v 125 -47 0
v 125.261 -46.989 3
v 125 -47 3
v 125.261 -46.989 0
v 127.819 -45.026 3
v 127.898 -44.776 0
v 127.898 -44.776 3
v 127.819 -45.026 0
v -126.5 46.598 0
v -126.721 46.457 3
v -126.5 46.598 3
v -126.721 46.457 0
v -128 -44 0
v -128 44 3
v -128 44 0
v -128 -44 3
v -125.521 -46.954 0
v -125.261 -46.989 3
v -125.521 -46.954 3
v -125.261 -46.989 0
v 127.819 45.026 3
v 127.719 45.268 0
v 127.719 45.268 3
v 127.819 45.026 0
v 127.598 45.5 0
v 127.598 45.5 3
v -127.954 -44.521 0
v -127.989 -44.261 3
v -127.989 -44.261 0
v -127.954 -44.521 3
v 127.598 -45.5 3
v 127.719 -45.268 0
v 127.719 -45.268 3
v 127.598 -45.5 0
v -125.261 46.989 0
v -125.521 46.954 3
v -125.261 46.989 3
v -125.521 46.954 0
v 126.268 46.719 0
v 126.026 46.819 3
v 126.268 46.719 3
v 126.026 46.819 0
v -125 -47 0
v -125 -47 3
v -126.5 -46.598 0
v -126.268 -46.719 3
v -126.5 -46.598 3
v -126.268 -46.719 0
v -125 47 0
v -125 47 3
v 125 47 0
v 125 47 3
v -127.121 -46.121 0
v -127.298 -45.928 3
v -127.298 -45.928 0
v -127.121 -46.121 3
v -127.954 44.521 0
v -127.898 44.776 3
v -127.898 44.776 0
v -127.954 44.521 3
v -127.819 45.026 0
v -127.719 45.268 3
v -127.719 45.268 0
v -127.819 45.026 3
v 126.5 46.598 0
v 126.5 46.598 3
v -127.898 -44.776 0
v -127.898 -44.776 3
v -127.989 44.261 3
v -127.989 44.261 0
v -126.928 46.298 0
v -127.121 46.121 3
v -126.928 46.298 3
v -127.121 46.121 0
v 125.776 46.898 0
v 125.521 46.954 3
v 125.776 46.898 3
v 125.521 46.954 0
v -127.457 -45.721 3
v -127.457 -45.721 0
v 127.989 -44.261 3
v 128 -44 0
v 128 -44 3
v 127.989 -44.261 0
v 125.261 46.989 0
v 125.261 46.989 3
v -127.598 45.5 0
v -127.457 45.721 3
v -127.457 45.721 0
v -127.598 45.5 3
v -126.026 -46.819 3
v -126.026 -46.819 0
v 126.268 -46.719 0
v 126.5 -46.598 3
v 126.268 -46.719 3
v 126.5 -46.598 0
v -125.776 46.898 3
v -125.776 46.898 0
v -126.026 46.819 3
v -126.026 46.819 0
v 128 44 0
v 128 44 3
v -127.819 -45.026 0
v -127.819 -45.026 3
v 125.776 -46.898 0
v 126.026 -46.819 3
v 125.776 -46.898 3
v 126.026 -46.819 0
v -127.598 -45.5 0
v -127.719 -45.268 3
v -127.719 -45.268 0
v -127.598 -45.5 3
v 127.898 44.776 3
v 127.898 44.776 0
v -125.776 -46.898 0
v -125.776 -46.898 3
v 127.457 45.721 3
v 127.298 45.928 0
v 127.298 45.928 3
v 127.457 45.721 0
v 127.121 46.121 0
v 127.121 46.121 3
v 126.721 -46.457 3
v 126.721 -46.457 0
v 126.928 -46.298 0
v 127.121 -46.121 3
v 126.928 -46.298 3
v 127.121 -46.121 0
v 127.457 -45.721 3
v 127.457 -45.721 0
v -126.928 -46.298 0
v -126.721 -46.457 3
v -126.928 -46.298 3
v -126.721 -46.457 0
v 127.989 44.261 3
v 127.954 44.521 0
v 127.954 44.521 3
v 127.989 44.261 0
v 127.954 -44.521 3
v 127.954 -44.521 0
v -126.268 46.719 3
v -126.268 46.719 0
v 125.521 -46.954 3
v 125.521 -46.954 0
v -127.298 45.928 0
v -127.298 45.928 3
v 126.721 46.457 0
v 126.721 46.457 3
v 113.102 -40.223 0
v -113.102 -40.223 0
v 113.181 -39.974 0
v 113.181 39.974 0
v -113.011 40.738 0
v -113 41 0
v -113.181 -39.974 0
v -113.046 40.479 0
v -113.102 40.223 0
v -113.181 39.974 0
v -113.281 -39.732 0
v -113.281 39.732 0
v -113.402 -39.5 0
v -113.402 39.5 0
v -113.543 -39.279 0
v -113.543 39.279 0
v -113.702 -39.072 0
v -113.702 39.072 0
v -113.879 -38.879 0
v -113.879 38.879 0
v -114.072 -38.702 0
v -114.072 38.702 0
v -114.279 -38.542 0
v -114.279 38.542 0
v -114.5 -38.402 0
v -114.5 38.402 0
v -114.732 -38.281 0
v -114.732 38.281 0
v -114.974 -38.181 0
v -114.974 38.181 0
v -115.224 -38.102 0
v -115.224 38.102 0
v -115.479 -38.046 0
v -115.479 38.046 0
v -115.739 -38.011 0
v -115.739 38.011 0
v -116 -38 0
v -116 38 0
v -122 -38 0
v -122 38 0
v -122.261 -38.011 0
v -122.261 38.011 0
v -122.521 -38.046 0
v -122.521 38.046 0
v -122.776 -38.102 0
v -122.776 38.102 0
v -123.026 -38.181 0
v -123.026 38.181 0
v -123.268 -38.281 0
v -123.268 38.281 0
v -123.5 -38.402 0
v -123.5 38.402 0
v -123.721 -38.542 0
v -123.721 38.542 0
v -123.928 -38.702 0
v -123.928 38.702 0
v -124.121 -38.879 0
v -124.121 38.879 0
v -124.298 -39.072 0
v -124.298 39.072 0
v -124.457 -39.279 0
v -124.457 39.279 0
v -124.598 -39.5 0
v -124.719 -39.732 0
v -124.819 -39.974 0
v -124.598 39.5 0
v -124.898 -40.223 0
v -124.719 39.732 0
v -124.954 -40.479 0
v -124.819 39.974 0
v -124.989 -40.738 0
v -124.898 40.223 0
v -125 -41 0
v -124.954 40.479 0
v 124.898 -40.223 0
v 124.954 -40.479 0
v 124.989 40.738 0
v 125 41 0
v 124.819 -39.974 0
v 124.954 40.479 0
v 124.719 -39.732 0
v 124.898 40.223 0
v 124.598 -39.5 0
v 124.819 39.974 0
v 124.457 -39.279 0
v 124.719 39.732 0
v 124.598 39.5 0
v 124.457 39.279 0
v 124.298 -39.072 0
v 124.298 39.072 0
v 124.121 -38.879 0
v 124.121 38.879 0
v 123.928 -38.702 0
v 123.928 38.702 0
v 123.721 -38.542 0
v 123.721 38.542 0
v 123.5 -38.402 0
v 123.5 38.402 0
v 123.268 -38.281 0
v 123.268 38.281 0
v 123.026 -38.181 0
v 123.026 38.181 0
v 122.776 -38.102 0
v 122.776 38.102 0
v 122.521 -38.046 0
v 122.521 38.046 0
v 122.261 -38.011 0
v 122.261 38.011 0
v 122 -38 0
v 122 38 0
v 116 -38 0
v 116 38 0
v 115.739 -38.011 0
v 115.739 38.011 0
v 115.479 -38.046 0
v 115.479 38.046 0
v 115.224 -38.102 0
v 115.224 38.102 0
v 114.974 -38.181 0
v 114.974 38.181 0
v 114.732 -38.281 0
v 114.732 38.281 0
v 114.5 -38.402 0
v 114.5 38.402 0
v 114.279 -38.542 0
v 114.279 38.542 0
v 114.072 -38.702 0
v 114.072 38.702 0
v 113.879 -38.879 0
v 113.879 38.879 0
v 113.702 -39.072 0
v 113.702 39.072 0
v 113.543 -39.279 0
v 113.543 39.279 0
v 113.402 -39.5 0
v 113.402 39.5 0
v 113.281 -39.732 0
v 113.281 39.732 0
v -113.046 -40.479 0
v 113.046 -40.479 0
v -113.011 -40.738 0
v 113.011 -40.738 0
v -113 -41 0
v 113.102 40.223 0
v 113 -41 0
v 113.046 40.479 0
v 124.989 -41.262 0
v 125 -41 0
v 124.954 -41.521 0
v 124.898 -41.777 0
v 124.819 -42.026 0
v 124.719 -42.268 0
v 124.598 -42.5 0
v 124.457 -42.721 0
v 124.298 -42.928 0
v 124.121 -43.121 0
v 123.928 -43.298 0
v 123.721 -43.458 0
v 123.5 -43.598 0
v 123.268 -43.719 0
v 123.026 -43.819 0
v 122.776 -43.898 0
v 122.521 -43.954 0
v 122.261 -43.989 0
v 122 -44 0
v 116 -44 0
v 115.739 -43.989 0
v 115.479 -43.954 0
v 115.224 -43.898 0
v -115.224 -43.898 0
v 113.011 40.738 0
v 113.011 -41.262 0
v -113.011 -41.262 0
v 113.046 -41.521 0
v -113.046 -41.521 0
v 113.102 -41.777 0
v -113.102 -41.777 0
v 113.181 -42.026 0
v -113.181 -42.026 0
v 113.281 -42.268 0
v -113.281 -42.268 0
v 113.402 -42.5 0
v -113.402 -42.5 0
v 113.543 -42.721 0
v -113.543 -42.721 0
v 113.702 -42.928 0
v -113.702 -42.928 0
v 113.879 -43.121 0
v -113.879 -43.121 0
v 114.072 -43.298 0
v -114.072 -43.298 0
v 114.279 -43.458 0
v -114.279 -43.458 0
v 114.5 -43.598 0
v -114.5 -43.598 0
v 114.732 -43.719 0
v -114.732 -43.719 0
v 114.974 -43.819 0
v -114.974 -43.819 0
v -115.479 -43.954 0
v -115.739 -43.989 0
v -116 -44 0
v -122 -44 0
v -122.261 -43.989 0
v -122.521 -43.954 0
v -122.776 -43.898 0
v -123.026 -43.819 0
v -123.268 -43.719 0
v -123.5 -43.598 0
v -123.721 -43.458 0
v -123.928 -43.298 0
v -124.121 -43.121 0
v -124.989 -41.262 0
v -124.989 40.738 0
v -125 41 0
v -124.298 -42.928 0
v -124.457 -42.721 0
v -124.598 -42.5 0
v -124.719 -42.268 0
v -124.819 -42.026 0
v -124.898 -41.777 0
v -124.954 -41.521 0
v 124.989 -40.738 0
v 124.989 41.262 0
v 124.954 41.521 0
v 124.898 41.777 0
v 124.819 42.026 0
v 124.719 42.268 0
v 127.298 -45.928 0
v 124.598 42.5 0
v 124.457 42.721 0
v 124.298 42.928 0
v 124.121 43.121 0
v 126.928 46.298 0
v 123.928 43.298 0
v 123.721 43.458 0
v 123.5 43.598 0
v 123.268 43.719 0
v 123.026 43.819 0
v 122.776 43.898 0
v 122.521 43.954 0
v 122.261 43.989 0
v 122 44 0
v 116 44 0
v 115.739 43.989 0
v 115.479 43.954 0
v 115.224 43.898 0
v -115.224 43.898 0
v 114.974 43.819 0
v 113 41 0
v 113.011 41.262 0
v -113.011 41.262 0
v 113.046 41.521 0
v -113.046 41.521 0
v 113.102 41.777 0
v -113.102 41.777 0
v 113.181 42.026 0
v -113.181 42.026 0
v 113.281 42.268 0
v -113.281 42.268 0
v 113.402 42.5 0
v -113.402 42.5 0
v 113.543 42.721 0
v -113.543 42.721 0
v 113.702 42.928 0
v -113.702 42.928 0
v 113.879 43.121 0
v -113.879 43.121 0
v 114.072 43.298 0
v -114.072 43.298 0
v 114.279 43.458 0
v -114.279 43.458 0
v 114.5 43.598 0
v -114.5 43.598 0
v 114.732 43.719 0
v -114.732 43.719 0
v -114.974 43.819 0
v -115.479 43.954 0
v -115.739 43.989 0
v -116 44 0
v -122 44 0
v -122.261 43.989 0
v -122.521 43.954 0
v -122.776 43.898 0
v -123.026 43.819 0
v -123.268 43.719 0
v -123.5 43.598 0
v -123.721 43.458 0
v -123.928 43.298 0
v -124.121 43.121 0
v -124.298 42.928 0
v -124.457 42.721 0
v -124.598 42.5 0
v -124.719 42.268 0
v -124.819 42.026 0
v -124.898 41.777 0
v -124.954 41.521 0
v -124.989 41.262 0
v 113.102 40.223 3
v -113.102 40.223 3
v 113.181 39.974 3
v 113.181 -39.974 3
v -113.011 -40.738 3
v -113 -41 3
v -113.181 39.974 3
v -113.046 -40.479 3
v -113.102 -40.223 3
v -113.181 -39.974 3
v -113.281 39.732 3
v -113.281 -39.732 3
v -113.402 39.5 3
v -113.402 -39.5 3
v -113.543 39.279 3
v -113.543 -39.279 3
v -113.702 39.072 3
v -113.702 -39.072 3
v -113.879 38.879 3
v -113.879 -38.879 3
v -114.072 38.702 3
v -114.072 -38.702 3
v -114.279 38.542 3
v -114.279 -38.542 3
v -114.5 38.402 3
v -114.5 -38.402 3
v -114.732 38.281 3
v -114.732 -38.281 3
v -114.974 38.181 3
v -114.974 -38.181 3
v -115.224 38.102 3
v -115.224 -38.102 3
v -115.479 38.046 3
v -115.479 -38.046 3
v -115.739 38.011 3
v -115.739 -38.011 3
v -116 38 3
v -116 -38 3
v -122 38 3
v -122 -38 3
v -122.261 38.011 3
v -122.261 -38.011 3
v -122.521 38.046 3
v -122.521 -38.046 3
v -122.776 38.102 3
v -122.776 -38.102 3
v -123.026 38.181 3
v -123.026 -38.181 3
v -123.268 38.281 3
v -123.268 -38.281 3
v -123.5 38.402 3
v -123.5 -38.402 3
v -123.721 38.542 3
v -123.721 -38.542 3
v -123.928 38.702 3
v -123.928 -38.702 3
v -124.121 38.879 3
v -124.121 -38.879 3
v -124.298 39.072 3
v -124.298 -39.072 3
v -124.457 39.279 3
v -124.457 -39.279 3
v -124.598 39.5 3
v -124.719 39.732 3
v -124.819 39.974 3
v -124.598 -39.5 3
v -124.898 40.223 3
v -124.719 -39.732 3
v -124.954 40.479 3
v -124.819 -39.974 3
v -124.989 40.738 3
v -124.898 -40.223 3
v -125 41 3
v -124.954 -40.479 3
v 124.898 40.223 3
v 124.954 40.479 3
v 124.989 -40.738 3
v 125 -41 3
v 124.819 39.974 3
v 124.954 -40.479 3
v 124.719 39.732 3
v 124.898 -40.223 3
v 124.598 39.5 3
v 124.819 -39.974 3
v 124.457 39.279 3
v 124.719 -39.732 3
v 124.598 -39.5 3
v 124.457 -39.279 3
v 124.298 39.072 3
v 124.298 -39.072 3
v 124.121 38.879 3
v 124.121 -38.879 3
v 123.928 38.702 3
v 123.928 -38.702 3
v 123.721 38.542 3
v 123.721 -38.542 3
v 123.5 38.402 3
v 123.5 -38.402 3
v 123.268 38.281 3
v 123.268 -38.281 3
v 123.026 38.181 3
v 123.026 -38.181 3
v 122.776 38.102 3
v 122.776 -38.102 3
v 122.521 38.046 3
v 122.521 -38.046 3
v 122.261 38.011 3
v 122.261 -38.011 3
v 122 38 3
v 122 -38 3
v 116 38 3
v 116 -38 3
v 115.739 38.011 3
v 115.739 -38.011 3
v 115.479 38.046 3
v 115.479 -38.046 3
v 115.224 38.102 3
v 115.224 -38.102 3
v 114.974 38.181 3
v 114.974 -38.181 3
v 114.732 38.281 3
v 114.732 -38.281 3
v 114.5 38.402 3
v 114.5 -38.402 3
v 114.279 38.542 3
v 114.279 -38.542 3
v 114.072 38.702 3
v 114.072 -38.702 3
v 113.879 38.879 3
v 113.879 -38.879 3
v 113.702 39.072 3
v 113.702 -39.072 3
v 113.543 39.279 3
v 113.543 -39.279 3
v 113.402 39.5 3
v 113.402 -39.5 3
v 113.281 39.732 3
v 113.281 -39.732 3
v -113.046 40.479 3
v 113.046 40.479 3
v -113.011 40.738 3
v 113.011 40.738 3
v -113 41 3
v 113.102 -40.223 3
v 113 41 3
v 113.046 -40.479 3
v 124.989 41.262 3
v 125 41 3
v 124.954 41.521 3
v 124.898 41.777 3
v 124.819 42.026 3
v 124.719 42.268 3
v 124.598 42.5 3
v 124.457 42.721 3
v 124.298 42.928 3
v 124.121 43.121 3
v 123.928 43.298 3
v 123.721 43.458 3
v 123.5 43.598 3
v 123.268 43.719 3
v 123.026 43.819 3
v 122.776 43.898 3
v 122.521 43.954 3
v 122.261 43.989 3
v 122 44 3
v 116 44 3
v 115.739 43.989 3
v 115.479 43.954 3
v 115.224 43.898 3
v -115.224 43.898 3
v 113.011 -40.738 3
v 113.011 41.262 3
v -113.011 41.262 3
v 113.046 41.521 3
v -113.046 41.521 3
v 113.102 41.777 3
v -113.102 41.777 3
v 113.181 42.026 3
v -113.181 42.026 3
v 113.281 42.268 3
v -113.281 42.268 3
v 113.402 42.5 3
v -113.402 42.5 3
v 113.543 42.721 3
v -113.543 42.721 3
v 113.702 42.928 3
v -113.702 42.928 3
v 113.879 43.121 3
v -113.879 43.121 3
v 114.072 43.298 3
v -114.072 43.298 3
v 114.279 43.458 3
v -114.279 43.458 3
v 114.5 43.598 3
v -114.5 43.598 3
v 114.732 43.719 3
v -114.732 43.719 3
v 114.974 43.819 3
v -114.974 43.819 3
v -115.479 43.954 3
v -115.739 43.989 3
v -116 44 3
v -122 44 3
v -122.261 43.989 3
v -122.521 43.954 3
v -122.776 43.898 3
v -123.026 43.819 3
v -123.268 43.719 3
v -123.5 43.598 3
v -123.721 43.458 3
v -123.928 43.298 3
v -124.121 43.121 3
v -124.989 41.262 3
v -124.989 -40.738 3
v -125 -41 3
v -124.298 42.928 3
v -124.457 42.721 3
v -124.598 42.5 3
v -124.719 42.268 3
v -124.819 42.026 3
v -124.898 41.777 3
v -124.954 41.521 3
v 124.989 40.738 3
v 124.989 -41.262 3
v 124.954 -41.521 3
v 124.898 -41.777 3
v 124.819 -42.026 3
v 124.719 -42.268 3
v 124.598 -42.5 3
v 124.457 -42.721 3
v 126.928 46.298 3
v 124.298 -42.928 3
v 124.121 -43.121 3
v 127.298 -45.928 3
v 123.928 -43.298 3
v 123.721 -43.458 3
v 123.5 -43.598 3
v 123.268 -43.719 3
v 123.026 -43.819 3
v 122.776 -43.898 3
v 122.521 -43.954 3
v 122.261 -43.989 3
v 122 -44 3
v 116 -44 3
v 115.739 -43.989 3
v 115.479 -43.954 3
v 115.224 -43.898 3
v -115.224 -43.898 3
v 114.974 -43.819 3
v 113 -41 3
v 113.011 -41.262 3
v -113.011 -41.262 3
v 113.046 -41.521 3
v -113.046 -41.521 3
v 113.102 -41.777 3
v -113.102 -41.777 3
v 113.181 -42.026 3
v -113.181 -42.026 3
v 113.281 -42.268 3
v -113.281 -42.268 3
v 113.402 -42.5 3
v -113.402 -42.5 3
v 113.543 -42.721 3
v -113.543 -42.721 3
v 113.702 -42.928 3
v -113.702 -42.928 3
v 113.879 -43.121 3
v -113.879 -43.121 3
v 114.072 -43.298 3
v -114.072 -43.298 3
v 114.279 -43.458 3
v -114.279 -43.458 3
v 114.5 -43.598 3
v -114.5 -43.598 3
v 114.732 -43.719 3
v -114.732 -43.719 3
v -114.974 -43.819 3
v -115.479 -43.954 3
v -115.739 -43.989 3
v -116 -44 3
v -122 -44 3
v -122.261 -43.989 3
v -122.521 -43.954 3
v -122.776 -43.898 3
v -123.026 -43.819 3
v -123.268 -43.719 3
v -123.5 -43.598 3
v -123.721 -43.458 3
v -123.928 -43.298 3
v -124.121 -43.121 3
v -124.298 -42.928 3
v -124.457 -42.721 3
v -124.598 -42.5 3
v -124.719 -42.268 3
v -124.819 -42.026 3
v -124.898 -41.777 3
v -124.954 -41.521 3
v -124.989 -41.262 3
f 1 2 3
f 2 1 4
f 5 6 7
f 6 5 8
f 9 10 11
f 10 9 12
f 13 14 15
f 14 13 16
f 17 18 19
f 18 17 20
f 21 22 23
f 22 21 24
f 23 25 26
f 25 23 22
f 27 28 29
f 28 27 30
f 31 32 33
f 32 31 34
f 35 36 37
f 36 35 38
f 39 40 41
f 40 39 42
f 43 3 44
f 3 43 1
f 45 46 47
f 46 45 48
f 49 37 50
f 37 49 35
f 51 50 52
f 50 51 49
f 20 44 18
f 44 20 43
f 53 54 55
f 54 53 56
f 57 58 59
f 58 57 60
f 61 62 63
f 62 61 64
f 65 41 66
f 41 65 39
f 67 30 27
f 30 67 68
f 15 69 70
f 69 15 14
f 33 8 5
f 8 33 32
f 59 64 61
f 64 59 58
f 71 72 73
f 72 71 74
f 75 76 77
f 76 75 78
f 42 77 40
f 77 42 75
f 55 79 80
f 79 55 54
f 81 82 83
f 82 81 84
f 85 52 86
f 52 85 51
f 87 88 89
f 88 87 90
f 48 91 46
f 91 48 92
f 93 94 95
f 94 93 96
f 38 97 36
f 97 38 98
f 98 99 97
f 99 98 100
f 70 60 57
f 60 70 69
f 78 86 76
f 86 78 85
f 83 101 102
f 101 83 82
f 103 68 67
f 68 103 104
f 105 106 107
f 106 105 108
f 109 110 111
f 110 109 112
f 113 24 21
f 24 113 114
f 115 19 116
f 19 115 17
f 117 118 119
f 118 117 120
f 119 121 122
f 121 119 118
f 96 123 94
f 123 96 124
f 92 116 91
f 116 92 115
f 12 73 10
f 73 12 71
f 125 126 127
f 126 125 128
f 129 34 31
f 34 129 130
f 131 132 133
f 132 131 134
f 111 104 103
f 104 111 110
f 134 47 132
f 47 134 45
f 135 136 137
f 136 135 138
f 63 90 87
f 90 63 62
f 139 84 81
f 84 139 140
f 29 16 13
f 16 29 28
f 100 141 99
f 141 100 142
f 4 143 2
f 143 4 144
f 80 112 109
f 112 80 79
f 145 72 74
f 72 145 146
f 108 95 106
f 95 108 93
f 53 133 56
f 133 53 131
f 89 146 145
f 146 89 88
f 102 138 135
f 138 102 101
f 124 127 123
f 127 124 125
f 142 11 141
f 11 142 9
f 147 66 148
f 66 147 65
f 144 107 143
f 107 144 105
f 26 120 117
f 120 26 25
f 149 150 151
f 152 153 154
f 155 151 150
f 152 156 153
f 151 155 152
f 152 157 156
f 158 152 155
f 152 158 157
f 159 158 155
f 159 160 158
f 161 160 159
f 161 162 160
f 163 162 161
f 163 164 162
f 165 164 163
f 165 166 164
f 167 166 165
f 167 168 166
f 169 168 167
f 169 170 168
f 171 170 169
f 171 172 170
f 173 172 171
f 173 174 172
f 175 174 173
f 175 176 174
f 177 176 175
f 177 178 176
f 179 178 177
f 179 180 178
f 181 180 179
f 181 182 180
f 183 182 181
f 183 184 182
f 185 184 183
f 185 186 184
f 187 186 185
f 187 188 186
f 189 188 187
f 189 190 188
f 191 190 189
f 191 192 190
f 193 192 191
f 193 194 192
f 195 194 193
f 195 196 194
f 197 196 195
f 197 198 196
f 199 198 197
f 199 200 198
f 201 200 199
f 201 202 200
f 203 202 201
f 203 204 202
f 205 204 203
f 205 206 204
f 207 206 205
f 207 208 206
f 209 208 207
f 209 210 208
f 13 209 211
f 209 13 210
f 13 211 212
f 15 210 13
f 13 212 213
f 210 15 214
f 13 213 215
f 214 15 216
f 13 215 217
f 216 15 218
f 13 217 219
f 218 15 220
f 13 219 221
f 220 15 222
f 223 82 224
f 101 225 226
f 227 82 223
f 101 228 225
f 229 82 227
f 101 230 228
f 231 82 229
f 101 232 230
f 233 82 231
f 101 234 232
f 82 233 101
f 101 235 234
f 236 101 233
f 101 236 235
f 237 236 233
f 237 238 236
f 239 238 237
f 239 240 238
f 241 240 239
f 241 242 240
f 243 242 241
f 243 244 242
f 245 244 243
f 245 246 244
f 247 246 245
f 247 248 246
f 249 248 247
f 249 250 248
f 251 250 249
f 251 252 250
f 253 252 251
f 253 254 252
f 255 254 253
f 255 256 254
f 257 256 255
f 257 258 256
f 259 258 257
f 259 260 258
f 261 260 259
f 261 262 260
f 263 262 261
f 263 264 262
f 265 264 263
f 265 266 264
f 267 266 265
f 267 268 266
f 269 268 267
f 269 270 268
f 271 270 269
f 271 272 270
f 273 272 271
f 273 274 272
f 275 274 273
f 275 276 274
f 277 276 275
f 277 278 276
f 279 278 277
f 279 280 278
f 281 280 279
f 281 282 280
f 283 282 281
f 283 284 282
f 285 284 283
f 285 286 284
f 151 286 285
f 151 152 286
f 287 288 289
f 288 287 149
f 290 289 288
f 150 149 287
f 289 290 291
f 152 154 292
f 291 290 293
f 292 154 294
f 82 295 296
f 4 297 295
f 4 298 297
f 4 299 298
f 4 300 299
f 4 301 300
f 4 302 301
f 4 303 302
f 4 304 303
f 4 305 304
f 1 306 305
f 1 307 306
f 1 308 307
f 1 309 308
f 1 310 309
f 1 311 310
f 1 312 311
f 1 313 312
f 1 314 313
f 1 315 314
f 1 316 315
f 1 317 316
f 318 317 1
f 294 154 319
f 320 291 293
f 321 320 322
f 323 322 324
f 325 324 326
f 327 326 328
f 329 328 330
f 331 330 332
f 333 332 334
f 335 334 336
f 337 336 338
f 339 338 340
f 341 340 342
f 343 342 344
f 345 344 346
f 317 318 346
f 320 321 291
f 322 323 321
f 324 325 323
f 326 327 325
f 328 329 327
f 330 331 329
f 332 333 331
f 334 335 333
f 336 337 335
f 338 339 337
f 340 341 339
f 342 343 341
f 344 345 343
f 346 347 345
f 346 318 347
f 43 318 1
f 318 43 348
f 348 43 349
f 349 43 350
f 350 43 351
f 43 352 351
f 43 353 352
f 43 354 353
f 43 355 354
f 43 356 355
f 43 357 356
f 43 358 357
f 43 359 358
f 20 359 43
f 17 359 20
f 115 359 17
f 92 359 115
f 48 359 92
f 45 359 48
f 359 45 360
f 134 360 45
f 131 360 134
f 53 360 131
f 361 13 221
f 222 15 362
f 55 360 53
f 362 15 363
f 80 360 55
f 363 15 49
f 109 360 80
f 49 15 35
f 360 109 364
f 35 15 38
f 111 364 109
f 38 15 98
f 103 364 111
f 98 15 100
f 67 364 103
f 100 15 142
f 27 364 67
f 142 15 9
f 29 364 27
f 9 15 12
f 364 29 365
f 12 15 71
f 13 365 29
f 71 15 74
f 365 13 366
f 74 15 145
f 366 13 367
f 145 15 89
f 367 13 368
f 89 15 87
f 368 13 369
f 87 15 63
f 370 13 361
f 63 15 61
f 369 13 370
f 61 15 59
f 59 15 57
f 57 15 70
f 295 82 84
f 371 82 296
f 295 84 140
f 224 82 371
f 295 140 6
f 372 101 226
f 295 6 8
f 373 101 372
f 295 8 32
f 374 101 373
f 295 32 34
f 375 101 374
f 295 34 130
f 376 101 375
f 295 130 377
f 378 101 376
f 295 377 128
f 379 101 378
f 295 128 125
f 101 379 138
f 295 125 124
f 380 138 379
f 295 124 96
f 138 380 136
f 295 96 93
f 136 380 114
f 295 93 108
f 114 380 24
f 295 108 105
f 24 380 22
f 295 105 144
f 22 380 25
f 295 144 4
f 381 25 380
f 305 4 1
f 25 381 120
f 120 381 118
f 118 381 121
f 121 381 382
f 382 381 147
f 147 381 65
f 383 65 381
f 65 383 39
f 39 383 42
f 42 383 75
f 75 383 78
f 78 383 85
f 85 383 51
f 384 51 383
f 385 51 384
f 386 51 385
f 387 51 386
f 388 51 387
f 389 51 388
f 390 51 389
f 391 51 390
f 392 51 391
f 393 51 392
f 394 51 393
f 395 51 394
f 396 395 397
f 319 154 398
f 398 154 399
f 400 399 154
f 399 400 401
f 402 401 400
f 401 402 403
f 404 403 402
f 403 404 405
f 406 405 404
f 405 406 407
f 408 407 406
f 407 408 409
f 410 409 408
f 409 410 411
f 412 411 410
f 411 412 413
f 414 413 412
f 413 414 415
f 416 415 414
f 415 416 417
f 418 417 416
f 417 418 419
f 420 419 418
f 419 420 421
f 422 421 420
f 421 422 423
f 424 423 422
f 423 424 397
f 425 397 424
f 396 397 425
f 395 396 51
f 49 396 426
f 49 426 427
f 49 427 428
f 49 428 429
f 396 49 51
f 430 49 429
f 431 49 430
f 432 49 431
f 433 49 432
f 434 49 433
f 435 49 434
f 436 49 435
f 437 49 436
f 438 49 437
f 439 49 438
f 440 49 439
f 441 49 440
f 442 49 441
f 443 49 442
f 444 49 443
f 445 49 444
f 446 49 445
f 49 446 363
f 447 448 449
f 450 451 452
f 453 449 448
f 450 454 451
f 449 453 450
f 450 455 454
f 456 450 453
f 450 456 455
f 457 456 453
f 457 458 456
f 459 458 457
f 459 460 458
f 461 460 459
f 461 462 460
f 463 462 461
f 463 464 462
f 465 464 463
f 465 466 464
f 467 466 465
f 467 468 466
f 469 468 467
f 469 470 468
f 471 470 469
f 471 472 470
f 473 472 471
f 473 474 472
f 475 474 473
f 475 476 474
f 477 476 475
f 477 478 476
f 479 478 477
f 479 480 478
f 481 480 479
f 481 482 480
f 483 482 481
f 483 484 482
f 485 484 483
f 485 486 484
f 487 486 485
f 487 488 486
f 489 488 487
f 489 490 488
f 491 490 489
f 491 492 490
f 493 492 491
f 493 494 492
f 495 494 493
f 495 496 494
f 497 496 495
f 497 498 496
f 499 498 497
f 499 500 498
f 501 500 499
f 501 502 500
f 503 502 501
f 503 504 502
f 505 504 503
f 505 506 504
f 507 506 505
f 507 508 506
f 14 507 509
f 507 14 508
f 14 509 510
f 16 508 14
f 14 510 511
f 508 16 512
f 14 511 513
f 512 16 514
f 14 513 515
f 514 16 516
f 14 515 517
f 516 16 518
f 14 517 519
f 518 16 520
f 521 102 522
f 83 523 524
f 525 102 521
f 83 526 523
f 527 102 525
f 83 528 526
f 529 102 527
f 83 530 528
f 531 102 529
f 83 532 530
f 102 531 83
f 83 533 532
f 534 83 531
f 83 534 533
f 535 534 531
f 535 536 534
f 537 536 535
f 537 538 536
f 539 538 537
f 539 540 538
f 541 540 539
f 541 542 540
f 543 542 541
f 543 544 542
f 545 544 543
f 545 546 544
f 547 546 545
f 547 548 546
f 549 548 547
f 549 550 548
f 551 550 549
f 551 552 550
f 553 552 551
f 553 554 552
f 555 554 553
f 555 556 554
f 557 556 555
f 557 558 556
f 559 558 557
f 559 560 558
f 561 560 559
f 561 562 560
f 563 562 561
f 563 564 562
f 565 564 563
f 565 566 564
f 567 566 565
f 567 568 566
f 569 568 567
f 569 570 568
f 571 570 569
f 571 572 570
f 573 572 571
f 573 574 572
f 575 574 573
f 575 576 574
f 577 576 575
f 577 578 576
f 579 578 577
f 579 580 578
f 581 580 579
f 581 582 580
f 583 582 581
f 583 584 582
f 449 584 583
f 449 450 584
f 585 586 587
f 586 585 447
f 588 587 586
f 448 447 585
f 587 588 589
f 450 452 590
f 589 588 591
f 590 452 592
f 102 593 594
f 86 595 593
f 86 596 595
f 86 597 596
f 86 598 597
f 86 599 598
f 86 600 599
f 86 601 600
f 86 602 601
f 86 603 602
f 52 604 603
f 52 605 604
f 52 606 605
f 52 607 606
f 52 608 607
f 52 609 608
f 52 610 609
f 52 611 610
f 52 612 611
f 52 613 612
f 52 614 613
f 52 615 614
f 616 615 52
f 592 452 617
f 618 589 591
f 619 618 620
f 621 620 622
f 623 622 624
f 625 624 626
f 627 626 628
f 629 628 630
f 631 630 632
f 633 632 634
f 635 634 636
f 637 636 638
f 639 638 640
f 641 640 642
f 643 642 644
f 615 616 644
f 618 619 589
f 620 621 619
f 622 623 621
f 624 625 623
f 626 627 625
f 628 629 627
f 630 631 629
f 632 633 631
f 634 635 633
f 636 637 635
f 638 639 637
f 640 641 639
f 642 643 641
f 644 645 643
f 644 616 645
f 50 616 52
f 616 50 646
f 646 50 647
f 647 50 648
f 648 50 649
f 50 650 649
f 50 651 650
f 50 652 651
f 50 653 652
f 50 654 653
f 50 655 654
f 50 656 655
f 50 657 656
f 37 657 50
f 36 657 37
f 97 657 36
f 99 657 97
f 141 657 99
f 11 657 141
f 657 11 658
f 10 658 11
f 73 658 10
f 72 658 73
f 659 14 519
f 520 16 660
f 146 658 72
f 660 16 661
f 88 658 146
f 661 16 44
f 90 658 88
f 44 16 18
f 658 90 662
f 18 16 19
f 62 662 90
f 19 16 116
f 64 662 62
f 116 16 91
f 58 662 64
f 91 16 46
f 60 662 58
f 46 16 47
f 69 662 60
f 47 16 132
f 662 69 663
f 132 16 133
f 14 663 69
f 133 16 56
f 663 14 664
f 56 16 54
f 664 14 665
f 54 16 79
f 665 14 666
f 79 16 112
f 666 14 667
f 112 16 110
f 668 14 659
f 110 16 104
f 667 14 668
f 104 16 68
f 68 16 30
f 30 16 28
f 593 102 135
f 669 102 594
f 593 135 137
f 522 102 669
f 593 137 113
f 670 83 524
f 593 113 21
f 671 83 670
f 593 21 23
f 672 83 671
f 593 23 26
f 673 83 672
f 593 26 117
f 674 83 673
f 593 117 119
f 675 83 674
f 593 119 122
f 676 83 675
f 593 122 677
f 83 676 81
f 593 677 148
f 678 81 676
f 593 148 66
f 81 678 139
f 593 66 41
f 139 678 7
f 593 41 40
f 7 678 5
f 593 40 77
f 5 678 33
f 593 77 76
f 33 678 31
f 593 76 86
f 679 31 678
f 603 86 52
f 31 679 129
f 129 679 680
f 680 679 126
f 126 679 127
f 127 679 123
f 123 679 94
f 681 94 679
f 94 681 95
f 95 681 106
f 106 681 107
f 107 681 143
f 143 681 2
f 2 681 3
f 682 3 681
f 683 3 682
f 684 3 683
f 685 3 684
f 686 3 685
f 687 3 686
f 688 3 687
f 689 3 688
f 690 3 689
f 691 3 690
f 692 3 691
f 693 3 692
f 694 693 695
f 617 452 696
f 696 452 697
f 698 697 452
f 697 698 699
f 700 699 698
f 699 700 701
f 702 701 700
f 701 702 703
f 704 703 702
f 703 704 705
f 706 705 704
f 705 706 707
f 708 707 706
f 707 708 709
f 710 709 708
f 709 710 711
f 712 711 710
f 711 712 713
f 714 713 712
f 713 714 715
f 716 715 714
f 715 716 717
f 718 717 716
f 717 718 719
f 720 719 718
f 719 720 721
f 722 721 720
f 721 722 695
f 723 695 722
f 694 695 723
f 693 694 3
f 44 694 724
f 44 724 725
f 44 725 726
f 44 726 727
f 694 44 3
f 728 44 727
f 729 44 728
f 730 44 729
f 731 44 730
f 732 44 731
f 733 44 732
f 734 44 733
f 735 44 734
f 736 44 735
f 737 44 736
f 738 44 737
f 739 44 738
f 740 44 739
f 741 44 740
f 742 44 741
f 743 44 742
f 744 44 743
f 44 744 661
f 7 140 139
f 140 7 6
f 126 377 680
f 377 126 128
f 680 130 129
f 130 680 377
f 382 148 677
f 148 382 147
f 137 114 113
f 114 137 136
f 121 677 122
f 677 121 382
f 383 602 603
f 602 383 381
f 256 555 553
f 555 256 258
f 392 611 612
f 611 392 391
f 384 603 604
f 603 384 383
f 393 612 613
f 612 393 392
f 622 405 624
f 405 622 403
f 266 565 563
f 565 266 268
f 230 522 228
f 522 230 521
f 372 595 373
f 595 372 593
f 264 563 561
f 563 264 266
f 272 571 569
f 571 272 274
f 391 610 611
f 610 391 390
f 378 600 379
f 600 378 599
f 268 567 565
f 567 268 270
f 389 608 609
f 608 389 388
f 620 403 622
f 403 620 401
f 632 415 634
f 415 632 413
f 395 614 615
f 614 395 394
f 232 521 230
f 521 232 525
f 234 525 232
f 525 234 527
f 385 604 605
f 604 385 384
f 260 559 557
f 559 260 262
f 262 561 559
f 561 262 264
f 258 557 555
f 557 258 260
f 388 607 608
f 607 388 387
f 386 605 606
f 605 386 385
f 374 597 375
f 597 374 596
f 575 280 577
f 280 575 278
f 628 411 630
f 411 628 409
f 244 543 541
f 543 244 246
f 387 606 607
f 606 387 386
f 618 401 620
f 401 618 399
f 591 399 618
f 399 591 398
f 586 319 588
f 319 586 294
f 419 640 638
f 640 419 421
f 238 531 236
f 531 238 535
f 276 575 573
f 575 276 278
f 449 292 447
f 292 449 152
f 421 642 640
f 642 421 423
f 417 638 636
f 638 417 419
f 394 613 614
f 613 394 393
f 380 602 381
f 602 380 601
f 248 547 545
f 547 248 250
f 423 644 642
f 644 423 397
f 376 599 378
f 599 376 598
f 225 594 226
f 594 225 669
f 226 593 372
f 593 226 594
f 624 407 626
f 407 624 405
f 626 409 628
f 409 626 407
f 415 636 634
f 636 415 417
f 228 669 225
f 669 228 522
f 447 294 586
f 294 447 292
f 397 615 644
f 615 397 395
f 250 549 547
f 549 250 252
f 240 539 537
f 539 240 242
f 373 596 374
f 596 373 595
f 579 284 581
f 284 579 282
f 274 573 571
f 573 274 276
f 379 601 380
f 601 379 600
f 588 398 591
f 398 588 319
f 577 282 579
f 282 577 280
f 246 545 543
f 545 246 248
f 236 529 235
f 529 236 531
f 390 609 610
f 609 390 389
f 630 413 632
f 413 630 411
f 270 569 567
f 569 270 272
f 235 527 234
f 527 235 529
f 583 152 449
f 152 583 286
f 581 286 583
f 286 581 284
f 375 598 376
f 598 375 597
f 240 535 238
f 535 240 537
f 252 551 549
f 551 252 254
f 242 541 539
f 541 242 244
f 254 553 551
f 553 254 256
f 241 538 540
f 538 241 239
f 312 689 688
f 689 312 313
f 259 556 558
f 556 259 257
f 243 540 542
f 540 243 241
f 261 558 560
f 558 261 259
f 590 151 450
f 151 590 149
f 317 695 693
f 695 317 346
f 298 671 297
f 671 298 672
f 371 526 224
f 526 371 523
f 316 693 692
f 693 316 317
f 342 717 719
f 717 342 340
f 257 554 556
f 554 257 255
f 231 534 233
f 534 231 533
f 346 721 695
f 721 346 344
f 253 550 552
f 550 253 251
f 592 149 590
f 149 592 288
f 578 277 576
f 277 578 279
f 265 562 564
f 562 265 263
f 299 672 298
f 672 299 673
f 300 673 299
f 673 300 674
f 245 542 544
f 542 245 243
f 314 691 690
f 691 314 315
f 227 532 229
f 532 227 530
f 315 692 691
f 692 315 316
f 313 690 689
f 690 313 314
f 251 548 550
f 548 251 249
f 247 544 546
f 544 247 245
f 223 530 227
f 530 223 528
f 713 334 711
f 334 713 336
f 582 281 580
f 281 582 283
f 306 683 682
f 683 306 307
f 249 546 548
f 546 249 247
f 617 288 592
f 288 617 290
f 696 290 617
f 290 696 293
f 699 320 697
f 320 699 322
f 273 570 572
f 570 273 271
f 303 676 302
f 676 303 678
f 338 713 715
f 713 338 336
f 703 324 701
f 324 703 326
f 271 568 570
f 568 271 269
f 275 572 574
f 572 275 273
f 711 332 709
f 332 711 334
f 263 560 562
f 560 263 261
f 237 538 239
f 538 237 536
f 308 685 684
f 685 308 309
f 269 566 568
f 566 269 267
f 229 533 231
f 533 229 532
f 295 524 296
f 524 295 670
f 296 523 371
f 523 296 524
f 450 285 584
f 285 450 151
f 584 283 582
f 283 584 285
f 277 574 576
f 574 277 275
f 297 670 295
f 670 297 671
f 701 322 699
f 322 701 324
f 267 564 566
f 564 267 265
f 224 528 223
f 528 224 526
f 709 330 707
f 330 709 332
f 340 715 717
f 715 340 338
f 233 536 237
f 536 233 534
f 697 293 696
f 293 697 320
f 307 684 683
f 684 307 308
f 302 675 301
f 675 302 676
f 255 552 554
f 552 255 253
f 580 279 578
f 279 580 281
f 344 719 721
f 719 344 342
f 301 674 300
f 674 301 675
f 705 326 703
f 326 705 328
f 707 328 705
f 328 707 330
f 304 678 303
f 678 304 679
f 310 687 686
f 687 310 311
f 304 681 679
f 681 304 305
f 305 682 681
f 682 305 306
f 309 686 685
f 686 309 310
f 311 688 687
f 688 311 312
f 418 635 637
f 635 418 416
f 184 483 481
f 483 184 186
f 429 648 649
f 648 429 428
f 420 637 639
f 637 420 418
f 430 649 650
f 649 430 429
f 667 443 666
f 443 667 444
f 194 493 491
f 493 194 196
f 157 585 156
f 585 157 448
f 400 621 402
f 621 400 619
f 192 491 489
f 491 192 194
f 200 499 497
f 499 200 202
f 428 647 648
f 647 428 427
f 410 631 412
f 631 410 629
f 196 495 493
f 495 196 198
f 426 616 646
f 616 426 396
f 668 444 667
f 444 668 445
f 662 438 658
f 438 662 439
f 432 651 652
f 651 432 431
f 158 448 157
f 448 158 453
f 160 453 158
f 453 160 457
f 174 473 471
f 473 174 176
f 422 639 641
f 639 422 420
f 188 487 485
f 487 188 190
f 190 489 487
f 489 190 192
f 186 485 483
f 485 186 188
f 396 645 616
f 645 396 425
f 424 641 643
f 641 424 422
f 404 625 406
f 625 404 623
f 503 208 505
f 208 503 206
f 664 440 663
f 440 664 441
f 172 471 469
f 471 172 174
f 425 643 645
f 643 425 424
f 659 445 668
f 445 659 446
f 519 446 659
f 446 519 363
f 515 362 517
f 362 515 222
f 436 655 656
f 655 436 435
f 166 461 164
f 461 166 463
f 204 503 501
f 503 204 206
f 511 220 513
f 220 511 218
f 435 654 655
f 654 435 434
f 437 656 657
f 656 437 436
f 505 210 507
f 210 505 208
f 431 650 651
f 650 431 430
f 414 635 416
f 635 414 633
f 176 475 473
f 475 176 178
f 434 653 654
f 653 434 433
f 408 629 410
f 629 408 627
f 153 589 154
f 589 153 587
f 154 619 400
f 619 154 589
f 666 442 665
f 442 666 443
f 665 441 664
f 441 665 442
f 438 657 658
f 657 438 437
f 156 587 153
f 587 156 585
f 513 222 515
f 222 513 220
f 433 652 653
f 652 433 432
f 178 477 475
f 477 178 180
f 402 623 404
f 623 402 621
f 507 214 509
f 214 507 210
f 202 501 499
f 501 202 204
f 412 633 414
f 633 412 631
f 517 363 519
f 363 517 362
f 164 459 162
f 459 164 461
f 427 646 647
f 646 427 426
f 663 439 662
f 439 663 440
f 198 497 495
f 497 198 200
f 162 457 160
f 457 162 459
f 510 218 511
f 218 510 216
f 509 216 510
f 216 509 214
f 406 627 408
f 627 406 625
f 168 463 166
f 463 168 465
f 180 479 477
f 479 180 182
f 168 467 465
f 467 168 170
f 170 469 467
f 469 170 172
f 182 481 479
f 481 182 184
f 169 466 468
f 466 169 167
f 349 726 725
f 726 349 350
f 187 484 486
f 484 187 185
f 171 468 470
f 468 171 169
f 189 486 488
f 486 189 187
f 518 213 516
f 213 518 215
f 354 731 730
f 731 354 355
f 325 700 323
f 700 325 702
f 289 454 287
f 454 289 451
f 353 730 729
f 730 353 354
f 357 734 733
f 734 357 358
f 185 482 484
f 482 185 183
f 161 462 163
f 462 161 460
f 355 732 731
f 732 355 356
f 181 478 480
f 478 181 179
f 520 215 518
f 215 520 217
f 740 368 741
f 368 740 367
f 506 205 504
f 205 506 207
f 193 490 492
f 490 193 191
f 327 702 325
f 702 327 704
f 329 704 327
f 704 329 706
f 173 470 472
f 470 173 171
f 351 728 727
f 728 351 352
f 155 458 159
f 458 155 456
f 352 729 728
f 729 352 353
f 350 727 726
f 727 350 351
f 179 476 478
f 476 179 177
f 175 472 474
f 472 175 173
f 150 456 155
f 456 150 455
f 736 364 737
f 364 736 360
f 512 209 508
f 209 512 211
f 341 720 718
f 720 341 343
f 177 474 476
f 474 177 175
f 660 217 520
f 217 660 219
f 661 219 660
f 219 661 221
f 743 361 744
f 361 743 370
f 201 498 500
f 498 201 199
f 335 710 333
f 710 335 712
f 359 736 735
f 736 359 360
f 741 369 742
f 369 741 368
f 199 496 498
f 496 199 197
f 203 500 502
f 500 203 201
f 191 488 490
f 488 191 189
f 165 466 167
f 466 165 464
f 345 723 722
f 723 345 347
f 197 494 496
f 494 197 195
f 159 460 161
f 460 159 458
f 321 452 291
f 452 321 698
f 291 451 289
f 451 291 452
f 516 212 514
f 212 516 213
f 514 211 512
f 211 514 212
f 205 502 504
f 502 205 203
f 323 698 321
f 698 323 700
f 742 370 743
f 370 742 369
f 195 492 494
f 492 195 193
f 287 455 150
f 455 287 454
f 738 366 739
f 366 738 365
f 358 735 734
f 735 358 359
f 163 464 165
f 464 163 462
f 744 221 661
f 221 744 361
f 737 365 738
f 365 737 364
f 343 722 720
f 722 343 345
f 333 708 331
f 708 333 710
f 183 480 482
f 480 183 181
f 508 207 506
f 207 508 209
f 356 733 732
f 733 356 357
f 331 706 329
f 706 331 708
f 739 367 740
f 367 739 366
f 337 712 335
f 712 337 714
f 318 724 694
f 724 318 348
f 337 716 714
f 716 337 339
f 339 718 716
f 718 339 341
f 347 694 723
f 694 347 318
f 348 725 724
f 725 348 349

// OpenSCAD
$fa = 5;
$fs = 0.01;

module blank2u() {

    PLATE_W = 250;
    PLATE_H = 88;
    PLATE_D = 3;
    CORNER_RADIUS = 3;

    CUTOUT_R = 3;
    CUTOUT_L = 2;
    CUTOUT_E = 3;

    CORNERS = [[1, 1], [1, -1], [-1, 1], [-1, -1]];

    difference()
    {
        // the plate
        linear_extrude( PLATE_D )
            offset(r=CORNER_RADIUS) 
                square( [PLATE_W, PLATE_H], center=true );

        // cutouts for screws
        for (corner = CORNERS) {
            #translate([corner[0] * (PLATE_W /2 - CUTOUT_L * 1.5 - CUTOUT_E), corner[1] * (PLATE_H / 2 - CUTOUT_E), 0])
                translate([0,0, - PLATE_D * 2])
                    linear_extrude( PLATE_D * 4 )
                        offset(r = CUTOUT_R) 
                            square( [CUTOUT_R * CUTOUT_L, 0.0001], center=true );
        }
    }
}

blank2u();
